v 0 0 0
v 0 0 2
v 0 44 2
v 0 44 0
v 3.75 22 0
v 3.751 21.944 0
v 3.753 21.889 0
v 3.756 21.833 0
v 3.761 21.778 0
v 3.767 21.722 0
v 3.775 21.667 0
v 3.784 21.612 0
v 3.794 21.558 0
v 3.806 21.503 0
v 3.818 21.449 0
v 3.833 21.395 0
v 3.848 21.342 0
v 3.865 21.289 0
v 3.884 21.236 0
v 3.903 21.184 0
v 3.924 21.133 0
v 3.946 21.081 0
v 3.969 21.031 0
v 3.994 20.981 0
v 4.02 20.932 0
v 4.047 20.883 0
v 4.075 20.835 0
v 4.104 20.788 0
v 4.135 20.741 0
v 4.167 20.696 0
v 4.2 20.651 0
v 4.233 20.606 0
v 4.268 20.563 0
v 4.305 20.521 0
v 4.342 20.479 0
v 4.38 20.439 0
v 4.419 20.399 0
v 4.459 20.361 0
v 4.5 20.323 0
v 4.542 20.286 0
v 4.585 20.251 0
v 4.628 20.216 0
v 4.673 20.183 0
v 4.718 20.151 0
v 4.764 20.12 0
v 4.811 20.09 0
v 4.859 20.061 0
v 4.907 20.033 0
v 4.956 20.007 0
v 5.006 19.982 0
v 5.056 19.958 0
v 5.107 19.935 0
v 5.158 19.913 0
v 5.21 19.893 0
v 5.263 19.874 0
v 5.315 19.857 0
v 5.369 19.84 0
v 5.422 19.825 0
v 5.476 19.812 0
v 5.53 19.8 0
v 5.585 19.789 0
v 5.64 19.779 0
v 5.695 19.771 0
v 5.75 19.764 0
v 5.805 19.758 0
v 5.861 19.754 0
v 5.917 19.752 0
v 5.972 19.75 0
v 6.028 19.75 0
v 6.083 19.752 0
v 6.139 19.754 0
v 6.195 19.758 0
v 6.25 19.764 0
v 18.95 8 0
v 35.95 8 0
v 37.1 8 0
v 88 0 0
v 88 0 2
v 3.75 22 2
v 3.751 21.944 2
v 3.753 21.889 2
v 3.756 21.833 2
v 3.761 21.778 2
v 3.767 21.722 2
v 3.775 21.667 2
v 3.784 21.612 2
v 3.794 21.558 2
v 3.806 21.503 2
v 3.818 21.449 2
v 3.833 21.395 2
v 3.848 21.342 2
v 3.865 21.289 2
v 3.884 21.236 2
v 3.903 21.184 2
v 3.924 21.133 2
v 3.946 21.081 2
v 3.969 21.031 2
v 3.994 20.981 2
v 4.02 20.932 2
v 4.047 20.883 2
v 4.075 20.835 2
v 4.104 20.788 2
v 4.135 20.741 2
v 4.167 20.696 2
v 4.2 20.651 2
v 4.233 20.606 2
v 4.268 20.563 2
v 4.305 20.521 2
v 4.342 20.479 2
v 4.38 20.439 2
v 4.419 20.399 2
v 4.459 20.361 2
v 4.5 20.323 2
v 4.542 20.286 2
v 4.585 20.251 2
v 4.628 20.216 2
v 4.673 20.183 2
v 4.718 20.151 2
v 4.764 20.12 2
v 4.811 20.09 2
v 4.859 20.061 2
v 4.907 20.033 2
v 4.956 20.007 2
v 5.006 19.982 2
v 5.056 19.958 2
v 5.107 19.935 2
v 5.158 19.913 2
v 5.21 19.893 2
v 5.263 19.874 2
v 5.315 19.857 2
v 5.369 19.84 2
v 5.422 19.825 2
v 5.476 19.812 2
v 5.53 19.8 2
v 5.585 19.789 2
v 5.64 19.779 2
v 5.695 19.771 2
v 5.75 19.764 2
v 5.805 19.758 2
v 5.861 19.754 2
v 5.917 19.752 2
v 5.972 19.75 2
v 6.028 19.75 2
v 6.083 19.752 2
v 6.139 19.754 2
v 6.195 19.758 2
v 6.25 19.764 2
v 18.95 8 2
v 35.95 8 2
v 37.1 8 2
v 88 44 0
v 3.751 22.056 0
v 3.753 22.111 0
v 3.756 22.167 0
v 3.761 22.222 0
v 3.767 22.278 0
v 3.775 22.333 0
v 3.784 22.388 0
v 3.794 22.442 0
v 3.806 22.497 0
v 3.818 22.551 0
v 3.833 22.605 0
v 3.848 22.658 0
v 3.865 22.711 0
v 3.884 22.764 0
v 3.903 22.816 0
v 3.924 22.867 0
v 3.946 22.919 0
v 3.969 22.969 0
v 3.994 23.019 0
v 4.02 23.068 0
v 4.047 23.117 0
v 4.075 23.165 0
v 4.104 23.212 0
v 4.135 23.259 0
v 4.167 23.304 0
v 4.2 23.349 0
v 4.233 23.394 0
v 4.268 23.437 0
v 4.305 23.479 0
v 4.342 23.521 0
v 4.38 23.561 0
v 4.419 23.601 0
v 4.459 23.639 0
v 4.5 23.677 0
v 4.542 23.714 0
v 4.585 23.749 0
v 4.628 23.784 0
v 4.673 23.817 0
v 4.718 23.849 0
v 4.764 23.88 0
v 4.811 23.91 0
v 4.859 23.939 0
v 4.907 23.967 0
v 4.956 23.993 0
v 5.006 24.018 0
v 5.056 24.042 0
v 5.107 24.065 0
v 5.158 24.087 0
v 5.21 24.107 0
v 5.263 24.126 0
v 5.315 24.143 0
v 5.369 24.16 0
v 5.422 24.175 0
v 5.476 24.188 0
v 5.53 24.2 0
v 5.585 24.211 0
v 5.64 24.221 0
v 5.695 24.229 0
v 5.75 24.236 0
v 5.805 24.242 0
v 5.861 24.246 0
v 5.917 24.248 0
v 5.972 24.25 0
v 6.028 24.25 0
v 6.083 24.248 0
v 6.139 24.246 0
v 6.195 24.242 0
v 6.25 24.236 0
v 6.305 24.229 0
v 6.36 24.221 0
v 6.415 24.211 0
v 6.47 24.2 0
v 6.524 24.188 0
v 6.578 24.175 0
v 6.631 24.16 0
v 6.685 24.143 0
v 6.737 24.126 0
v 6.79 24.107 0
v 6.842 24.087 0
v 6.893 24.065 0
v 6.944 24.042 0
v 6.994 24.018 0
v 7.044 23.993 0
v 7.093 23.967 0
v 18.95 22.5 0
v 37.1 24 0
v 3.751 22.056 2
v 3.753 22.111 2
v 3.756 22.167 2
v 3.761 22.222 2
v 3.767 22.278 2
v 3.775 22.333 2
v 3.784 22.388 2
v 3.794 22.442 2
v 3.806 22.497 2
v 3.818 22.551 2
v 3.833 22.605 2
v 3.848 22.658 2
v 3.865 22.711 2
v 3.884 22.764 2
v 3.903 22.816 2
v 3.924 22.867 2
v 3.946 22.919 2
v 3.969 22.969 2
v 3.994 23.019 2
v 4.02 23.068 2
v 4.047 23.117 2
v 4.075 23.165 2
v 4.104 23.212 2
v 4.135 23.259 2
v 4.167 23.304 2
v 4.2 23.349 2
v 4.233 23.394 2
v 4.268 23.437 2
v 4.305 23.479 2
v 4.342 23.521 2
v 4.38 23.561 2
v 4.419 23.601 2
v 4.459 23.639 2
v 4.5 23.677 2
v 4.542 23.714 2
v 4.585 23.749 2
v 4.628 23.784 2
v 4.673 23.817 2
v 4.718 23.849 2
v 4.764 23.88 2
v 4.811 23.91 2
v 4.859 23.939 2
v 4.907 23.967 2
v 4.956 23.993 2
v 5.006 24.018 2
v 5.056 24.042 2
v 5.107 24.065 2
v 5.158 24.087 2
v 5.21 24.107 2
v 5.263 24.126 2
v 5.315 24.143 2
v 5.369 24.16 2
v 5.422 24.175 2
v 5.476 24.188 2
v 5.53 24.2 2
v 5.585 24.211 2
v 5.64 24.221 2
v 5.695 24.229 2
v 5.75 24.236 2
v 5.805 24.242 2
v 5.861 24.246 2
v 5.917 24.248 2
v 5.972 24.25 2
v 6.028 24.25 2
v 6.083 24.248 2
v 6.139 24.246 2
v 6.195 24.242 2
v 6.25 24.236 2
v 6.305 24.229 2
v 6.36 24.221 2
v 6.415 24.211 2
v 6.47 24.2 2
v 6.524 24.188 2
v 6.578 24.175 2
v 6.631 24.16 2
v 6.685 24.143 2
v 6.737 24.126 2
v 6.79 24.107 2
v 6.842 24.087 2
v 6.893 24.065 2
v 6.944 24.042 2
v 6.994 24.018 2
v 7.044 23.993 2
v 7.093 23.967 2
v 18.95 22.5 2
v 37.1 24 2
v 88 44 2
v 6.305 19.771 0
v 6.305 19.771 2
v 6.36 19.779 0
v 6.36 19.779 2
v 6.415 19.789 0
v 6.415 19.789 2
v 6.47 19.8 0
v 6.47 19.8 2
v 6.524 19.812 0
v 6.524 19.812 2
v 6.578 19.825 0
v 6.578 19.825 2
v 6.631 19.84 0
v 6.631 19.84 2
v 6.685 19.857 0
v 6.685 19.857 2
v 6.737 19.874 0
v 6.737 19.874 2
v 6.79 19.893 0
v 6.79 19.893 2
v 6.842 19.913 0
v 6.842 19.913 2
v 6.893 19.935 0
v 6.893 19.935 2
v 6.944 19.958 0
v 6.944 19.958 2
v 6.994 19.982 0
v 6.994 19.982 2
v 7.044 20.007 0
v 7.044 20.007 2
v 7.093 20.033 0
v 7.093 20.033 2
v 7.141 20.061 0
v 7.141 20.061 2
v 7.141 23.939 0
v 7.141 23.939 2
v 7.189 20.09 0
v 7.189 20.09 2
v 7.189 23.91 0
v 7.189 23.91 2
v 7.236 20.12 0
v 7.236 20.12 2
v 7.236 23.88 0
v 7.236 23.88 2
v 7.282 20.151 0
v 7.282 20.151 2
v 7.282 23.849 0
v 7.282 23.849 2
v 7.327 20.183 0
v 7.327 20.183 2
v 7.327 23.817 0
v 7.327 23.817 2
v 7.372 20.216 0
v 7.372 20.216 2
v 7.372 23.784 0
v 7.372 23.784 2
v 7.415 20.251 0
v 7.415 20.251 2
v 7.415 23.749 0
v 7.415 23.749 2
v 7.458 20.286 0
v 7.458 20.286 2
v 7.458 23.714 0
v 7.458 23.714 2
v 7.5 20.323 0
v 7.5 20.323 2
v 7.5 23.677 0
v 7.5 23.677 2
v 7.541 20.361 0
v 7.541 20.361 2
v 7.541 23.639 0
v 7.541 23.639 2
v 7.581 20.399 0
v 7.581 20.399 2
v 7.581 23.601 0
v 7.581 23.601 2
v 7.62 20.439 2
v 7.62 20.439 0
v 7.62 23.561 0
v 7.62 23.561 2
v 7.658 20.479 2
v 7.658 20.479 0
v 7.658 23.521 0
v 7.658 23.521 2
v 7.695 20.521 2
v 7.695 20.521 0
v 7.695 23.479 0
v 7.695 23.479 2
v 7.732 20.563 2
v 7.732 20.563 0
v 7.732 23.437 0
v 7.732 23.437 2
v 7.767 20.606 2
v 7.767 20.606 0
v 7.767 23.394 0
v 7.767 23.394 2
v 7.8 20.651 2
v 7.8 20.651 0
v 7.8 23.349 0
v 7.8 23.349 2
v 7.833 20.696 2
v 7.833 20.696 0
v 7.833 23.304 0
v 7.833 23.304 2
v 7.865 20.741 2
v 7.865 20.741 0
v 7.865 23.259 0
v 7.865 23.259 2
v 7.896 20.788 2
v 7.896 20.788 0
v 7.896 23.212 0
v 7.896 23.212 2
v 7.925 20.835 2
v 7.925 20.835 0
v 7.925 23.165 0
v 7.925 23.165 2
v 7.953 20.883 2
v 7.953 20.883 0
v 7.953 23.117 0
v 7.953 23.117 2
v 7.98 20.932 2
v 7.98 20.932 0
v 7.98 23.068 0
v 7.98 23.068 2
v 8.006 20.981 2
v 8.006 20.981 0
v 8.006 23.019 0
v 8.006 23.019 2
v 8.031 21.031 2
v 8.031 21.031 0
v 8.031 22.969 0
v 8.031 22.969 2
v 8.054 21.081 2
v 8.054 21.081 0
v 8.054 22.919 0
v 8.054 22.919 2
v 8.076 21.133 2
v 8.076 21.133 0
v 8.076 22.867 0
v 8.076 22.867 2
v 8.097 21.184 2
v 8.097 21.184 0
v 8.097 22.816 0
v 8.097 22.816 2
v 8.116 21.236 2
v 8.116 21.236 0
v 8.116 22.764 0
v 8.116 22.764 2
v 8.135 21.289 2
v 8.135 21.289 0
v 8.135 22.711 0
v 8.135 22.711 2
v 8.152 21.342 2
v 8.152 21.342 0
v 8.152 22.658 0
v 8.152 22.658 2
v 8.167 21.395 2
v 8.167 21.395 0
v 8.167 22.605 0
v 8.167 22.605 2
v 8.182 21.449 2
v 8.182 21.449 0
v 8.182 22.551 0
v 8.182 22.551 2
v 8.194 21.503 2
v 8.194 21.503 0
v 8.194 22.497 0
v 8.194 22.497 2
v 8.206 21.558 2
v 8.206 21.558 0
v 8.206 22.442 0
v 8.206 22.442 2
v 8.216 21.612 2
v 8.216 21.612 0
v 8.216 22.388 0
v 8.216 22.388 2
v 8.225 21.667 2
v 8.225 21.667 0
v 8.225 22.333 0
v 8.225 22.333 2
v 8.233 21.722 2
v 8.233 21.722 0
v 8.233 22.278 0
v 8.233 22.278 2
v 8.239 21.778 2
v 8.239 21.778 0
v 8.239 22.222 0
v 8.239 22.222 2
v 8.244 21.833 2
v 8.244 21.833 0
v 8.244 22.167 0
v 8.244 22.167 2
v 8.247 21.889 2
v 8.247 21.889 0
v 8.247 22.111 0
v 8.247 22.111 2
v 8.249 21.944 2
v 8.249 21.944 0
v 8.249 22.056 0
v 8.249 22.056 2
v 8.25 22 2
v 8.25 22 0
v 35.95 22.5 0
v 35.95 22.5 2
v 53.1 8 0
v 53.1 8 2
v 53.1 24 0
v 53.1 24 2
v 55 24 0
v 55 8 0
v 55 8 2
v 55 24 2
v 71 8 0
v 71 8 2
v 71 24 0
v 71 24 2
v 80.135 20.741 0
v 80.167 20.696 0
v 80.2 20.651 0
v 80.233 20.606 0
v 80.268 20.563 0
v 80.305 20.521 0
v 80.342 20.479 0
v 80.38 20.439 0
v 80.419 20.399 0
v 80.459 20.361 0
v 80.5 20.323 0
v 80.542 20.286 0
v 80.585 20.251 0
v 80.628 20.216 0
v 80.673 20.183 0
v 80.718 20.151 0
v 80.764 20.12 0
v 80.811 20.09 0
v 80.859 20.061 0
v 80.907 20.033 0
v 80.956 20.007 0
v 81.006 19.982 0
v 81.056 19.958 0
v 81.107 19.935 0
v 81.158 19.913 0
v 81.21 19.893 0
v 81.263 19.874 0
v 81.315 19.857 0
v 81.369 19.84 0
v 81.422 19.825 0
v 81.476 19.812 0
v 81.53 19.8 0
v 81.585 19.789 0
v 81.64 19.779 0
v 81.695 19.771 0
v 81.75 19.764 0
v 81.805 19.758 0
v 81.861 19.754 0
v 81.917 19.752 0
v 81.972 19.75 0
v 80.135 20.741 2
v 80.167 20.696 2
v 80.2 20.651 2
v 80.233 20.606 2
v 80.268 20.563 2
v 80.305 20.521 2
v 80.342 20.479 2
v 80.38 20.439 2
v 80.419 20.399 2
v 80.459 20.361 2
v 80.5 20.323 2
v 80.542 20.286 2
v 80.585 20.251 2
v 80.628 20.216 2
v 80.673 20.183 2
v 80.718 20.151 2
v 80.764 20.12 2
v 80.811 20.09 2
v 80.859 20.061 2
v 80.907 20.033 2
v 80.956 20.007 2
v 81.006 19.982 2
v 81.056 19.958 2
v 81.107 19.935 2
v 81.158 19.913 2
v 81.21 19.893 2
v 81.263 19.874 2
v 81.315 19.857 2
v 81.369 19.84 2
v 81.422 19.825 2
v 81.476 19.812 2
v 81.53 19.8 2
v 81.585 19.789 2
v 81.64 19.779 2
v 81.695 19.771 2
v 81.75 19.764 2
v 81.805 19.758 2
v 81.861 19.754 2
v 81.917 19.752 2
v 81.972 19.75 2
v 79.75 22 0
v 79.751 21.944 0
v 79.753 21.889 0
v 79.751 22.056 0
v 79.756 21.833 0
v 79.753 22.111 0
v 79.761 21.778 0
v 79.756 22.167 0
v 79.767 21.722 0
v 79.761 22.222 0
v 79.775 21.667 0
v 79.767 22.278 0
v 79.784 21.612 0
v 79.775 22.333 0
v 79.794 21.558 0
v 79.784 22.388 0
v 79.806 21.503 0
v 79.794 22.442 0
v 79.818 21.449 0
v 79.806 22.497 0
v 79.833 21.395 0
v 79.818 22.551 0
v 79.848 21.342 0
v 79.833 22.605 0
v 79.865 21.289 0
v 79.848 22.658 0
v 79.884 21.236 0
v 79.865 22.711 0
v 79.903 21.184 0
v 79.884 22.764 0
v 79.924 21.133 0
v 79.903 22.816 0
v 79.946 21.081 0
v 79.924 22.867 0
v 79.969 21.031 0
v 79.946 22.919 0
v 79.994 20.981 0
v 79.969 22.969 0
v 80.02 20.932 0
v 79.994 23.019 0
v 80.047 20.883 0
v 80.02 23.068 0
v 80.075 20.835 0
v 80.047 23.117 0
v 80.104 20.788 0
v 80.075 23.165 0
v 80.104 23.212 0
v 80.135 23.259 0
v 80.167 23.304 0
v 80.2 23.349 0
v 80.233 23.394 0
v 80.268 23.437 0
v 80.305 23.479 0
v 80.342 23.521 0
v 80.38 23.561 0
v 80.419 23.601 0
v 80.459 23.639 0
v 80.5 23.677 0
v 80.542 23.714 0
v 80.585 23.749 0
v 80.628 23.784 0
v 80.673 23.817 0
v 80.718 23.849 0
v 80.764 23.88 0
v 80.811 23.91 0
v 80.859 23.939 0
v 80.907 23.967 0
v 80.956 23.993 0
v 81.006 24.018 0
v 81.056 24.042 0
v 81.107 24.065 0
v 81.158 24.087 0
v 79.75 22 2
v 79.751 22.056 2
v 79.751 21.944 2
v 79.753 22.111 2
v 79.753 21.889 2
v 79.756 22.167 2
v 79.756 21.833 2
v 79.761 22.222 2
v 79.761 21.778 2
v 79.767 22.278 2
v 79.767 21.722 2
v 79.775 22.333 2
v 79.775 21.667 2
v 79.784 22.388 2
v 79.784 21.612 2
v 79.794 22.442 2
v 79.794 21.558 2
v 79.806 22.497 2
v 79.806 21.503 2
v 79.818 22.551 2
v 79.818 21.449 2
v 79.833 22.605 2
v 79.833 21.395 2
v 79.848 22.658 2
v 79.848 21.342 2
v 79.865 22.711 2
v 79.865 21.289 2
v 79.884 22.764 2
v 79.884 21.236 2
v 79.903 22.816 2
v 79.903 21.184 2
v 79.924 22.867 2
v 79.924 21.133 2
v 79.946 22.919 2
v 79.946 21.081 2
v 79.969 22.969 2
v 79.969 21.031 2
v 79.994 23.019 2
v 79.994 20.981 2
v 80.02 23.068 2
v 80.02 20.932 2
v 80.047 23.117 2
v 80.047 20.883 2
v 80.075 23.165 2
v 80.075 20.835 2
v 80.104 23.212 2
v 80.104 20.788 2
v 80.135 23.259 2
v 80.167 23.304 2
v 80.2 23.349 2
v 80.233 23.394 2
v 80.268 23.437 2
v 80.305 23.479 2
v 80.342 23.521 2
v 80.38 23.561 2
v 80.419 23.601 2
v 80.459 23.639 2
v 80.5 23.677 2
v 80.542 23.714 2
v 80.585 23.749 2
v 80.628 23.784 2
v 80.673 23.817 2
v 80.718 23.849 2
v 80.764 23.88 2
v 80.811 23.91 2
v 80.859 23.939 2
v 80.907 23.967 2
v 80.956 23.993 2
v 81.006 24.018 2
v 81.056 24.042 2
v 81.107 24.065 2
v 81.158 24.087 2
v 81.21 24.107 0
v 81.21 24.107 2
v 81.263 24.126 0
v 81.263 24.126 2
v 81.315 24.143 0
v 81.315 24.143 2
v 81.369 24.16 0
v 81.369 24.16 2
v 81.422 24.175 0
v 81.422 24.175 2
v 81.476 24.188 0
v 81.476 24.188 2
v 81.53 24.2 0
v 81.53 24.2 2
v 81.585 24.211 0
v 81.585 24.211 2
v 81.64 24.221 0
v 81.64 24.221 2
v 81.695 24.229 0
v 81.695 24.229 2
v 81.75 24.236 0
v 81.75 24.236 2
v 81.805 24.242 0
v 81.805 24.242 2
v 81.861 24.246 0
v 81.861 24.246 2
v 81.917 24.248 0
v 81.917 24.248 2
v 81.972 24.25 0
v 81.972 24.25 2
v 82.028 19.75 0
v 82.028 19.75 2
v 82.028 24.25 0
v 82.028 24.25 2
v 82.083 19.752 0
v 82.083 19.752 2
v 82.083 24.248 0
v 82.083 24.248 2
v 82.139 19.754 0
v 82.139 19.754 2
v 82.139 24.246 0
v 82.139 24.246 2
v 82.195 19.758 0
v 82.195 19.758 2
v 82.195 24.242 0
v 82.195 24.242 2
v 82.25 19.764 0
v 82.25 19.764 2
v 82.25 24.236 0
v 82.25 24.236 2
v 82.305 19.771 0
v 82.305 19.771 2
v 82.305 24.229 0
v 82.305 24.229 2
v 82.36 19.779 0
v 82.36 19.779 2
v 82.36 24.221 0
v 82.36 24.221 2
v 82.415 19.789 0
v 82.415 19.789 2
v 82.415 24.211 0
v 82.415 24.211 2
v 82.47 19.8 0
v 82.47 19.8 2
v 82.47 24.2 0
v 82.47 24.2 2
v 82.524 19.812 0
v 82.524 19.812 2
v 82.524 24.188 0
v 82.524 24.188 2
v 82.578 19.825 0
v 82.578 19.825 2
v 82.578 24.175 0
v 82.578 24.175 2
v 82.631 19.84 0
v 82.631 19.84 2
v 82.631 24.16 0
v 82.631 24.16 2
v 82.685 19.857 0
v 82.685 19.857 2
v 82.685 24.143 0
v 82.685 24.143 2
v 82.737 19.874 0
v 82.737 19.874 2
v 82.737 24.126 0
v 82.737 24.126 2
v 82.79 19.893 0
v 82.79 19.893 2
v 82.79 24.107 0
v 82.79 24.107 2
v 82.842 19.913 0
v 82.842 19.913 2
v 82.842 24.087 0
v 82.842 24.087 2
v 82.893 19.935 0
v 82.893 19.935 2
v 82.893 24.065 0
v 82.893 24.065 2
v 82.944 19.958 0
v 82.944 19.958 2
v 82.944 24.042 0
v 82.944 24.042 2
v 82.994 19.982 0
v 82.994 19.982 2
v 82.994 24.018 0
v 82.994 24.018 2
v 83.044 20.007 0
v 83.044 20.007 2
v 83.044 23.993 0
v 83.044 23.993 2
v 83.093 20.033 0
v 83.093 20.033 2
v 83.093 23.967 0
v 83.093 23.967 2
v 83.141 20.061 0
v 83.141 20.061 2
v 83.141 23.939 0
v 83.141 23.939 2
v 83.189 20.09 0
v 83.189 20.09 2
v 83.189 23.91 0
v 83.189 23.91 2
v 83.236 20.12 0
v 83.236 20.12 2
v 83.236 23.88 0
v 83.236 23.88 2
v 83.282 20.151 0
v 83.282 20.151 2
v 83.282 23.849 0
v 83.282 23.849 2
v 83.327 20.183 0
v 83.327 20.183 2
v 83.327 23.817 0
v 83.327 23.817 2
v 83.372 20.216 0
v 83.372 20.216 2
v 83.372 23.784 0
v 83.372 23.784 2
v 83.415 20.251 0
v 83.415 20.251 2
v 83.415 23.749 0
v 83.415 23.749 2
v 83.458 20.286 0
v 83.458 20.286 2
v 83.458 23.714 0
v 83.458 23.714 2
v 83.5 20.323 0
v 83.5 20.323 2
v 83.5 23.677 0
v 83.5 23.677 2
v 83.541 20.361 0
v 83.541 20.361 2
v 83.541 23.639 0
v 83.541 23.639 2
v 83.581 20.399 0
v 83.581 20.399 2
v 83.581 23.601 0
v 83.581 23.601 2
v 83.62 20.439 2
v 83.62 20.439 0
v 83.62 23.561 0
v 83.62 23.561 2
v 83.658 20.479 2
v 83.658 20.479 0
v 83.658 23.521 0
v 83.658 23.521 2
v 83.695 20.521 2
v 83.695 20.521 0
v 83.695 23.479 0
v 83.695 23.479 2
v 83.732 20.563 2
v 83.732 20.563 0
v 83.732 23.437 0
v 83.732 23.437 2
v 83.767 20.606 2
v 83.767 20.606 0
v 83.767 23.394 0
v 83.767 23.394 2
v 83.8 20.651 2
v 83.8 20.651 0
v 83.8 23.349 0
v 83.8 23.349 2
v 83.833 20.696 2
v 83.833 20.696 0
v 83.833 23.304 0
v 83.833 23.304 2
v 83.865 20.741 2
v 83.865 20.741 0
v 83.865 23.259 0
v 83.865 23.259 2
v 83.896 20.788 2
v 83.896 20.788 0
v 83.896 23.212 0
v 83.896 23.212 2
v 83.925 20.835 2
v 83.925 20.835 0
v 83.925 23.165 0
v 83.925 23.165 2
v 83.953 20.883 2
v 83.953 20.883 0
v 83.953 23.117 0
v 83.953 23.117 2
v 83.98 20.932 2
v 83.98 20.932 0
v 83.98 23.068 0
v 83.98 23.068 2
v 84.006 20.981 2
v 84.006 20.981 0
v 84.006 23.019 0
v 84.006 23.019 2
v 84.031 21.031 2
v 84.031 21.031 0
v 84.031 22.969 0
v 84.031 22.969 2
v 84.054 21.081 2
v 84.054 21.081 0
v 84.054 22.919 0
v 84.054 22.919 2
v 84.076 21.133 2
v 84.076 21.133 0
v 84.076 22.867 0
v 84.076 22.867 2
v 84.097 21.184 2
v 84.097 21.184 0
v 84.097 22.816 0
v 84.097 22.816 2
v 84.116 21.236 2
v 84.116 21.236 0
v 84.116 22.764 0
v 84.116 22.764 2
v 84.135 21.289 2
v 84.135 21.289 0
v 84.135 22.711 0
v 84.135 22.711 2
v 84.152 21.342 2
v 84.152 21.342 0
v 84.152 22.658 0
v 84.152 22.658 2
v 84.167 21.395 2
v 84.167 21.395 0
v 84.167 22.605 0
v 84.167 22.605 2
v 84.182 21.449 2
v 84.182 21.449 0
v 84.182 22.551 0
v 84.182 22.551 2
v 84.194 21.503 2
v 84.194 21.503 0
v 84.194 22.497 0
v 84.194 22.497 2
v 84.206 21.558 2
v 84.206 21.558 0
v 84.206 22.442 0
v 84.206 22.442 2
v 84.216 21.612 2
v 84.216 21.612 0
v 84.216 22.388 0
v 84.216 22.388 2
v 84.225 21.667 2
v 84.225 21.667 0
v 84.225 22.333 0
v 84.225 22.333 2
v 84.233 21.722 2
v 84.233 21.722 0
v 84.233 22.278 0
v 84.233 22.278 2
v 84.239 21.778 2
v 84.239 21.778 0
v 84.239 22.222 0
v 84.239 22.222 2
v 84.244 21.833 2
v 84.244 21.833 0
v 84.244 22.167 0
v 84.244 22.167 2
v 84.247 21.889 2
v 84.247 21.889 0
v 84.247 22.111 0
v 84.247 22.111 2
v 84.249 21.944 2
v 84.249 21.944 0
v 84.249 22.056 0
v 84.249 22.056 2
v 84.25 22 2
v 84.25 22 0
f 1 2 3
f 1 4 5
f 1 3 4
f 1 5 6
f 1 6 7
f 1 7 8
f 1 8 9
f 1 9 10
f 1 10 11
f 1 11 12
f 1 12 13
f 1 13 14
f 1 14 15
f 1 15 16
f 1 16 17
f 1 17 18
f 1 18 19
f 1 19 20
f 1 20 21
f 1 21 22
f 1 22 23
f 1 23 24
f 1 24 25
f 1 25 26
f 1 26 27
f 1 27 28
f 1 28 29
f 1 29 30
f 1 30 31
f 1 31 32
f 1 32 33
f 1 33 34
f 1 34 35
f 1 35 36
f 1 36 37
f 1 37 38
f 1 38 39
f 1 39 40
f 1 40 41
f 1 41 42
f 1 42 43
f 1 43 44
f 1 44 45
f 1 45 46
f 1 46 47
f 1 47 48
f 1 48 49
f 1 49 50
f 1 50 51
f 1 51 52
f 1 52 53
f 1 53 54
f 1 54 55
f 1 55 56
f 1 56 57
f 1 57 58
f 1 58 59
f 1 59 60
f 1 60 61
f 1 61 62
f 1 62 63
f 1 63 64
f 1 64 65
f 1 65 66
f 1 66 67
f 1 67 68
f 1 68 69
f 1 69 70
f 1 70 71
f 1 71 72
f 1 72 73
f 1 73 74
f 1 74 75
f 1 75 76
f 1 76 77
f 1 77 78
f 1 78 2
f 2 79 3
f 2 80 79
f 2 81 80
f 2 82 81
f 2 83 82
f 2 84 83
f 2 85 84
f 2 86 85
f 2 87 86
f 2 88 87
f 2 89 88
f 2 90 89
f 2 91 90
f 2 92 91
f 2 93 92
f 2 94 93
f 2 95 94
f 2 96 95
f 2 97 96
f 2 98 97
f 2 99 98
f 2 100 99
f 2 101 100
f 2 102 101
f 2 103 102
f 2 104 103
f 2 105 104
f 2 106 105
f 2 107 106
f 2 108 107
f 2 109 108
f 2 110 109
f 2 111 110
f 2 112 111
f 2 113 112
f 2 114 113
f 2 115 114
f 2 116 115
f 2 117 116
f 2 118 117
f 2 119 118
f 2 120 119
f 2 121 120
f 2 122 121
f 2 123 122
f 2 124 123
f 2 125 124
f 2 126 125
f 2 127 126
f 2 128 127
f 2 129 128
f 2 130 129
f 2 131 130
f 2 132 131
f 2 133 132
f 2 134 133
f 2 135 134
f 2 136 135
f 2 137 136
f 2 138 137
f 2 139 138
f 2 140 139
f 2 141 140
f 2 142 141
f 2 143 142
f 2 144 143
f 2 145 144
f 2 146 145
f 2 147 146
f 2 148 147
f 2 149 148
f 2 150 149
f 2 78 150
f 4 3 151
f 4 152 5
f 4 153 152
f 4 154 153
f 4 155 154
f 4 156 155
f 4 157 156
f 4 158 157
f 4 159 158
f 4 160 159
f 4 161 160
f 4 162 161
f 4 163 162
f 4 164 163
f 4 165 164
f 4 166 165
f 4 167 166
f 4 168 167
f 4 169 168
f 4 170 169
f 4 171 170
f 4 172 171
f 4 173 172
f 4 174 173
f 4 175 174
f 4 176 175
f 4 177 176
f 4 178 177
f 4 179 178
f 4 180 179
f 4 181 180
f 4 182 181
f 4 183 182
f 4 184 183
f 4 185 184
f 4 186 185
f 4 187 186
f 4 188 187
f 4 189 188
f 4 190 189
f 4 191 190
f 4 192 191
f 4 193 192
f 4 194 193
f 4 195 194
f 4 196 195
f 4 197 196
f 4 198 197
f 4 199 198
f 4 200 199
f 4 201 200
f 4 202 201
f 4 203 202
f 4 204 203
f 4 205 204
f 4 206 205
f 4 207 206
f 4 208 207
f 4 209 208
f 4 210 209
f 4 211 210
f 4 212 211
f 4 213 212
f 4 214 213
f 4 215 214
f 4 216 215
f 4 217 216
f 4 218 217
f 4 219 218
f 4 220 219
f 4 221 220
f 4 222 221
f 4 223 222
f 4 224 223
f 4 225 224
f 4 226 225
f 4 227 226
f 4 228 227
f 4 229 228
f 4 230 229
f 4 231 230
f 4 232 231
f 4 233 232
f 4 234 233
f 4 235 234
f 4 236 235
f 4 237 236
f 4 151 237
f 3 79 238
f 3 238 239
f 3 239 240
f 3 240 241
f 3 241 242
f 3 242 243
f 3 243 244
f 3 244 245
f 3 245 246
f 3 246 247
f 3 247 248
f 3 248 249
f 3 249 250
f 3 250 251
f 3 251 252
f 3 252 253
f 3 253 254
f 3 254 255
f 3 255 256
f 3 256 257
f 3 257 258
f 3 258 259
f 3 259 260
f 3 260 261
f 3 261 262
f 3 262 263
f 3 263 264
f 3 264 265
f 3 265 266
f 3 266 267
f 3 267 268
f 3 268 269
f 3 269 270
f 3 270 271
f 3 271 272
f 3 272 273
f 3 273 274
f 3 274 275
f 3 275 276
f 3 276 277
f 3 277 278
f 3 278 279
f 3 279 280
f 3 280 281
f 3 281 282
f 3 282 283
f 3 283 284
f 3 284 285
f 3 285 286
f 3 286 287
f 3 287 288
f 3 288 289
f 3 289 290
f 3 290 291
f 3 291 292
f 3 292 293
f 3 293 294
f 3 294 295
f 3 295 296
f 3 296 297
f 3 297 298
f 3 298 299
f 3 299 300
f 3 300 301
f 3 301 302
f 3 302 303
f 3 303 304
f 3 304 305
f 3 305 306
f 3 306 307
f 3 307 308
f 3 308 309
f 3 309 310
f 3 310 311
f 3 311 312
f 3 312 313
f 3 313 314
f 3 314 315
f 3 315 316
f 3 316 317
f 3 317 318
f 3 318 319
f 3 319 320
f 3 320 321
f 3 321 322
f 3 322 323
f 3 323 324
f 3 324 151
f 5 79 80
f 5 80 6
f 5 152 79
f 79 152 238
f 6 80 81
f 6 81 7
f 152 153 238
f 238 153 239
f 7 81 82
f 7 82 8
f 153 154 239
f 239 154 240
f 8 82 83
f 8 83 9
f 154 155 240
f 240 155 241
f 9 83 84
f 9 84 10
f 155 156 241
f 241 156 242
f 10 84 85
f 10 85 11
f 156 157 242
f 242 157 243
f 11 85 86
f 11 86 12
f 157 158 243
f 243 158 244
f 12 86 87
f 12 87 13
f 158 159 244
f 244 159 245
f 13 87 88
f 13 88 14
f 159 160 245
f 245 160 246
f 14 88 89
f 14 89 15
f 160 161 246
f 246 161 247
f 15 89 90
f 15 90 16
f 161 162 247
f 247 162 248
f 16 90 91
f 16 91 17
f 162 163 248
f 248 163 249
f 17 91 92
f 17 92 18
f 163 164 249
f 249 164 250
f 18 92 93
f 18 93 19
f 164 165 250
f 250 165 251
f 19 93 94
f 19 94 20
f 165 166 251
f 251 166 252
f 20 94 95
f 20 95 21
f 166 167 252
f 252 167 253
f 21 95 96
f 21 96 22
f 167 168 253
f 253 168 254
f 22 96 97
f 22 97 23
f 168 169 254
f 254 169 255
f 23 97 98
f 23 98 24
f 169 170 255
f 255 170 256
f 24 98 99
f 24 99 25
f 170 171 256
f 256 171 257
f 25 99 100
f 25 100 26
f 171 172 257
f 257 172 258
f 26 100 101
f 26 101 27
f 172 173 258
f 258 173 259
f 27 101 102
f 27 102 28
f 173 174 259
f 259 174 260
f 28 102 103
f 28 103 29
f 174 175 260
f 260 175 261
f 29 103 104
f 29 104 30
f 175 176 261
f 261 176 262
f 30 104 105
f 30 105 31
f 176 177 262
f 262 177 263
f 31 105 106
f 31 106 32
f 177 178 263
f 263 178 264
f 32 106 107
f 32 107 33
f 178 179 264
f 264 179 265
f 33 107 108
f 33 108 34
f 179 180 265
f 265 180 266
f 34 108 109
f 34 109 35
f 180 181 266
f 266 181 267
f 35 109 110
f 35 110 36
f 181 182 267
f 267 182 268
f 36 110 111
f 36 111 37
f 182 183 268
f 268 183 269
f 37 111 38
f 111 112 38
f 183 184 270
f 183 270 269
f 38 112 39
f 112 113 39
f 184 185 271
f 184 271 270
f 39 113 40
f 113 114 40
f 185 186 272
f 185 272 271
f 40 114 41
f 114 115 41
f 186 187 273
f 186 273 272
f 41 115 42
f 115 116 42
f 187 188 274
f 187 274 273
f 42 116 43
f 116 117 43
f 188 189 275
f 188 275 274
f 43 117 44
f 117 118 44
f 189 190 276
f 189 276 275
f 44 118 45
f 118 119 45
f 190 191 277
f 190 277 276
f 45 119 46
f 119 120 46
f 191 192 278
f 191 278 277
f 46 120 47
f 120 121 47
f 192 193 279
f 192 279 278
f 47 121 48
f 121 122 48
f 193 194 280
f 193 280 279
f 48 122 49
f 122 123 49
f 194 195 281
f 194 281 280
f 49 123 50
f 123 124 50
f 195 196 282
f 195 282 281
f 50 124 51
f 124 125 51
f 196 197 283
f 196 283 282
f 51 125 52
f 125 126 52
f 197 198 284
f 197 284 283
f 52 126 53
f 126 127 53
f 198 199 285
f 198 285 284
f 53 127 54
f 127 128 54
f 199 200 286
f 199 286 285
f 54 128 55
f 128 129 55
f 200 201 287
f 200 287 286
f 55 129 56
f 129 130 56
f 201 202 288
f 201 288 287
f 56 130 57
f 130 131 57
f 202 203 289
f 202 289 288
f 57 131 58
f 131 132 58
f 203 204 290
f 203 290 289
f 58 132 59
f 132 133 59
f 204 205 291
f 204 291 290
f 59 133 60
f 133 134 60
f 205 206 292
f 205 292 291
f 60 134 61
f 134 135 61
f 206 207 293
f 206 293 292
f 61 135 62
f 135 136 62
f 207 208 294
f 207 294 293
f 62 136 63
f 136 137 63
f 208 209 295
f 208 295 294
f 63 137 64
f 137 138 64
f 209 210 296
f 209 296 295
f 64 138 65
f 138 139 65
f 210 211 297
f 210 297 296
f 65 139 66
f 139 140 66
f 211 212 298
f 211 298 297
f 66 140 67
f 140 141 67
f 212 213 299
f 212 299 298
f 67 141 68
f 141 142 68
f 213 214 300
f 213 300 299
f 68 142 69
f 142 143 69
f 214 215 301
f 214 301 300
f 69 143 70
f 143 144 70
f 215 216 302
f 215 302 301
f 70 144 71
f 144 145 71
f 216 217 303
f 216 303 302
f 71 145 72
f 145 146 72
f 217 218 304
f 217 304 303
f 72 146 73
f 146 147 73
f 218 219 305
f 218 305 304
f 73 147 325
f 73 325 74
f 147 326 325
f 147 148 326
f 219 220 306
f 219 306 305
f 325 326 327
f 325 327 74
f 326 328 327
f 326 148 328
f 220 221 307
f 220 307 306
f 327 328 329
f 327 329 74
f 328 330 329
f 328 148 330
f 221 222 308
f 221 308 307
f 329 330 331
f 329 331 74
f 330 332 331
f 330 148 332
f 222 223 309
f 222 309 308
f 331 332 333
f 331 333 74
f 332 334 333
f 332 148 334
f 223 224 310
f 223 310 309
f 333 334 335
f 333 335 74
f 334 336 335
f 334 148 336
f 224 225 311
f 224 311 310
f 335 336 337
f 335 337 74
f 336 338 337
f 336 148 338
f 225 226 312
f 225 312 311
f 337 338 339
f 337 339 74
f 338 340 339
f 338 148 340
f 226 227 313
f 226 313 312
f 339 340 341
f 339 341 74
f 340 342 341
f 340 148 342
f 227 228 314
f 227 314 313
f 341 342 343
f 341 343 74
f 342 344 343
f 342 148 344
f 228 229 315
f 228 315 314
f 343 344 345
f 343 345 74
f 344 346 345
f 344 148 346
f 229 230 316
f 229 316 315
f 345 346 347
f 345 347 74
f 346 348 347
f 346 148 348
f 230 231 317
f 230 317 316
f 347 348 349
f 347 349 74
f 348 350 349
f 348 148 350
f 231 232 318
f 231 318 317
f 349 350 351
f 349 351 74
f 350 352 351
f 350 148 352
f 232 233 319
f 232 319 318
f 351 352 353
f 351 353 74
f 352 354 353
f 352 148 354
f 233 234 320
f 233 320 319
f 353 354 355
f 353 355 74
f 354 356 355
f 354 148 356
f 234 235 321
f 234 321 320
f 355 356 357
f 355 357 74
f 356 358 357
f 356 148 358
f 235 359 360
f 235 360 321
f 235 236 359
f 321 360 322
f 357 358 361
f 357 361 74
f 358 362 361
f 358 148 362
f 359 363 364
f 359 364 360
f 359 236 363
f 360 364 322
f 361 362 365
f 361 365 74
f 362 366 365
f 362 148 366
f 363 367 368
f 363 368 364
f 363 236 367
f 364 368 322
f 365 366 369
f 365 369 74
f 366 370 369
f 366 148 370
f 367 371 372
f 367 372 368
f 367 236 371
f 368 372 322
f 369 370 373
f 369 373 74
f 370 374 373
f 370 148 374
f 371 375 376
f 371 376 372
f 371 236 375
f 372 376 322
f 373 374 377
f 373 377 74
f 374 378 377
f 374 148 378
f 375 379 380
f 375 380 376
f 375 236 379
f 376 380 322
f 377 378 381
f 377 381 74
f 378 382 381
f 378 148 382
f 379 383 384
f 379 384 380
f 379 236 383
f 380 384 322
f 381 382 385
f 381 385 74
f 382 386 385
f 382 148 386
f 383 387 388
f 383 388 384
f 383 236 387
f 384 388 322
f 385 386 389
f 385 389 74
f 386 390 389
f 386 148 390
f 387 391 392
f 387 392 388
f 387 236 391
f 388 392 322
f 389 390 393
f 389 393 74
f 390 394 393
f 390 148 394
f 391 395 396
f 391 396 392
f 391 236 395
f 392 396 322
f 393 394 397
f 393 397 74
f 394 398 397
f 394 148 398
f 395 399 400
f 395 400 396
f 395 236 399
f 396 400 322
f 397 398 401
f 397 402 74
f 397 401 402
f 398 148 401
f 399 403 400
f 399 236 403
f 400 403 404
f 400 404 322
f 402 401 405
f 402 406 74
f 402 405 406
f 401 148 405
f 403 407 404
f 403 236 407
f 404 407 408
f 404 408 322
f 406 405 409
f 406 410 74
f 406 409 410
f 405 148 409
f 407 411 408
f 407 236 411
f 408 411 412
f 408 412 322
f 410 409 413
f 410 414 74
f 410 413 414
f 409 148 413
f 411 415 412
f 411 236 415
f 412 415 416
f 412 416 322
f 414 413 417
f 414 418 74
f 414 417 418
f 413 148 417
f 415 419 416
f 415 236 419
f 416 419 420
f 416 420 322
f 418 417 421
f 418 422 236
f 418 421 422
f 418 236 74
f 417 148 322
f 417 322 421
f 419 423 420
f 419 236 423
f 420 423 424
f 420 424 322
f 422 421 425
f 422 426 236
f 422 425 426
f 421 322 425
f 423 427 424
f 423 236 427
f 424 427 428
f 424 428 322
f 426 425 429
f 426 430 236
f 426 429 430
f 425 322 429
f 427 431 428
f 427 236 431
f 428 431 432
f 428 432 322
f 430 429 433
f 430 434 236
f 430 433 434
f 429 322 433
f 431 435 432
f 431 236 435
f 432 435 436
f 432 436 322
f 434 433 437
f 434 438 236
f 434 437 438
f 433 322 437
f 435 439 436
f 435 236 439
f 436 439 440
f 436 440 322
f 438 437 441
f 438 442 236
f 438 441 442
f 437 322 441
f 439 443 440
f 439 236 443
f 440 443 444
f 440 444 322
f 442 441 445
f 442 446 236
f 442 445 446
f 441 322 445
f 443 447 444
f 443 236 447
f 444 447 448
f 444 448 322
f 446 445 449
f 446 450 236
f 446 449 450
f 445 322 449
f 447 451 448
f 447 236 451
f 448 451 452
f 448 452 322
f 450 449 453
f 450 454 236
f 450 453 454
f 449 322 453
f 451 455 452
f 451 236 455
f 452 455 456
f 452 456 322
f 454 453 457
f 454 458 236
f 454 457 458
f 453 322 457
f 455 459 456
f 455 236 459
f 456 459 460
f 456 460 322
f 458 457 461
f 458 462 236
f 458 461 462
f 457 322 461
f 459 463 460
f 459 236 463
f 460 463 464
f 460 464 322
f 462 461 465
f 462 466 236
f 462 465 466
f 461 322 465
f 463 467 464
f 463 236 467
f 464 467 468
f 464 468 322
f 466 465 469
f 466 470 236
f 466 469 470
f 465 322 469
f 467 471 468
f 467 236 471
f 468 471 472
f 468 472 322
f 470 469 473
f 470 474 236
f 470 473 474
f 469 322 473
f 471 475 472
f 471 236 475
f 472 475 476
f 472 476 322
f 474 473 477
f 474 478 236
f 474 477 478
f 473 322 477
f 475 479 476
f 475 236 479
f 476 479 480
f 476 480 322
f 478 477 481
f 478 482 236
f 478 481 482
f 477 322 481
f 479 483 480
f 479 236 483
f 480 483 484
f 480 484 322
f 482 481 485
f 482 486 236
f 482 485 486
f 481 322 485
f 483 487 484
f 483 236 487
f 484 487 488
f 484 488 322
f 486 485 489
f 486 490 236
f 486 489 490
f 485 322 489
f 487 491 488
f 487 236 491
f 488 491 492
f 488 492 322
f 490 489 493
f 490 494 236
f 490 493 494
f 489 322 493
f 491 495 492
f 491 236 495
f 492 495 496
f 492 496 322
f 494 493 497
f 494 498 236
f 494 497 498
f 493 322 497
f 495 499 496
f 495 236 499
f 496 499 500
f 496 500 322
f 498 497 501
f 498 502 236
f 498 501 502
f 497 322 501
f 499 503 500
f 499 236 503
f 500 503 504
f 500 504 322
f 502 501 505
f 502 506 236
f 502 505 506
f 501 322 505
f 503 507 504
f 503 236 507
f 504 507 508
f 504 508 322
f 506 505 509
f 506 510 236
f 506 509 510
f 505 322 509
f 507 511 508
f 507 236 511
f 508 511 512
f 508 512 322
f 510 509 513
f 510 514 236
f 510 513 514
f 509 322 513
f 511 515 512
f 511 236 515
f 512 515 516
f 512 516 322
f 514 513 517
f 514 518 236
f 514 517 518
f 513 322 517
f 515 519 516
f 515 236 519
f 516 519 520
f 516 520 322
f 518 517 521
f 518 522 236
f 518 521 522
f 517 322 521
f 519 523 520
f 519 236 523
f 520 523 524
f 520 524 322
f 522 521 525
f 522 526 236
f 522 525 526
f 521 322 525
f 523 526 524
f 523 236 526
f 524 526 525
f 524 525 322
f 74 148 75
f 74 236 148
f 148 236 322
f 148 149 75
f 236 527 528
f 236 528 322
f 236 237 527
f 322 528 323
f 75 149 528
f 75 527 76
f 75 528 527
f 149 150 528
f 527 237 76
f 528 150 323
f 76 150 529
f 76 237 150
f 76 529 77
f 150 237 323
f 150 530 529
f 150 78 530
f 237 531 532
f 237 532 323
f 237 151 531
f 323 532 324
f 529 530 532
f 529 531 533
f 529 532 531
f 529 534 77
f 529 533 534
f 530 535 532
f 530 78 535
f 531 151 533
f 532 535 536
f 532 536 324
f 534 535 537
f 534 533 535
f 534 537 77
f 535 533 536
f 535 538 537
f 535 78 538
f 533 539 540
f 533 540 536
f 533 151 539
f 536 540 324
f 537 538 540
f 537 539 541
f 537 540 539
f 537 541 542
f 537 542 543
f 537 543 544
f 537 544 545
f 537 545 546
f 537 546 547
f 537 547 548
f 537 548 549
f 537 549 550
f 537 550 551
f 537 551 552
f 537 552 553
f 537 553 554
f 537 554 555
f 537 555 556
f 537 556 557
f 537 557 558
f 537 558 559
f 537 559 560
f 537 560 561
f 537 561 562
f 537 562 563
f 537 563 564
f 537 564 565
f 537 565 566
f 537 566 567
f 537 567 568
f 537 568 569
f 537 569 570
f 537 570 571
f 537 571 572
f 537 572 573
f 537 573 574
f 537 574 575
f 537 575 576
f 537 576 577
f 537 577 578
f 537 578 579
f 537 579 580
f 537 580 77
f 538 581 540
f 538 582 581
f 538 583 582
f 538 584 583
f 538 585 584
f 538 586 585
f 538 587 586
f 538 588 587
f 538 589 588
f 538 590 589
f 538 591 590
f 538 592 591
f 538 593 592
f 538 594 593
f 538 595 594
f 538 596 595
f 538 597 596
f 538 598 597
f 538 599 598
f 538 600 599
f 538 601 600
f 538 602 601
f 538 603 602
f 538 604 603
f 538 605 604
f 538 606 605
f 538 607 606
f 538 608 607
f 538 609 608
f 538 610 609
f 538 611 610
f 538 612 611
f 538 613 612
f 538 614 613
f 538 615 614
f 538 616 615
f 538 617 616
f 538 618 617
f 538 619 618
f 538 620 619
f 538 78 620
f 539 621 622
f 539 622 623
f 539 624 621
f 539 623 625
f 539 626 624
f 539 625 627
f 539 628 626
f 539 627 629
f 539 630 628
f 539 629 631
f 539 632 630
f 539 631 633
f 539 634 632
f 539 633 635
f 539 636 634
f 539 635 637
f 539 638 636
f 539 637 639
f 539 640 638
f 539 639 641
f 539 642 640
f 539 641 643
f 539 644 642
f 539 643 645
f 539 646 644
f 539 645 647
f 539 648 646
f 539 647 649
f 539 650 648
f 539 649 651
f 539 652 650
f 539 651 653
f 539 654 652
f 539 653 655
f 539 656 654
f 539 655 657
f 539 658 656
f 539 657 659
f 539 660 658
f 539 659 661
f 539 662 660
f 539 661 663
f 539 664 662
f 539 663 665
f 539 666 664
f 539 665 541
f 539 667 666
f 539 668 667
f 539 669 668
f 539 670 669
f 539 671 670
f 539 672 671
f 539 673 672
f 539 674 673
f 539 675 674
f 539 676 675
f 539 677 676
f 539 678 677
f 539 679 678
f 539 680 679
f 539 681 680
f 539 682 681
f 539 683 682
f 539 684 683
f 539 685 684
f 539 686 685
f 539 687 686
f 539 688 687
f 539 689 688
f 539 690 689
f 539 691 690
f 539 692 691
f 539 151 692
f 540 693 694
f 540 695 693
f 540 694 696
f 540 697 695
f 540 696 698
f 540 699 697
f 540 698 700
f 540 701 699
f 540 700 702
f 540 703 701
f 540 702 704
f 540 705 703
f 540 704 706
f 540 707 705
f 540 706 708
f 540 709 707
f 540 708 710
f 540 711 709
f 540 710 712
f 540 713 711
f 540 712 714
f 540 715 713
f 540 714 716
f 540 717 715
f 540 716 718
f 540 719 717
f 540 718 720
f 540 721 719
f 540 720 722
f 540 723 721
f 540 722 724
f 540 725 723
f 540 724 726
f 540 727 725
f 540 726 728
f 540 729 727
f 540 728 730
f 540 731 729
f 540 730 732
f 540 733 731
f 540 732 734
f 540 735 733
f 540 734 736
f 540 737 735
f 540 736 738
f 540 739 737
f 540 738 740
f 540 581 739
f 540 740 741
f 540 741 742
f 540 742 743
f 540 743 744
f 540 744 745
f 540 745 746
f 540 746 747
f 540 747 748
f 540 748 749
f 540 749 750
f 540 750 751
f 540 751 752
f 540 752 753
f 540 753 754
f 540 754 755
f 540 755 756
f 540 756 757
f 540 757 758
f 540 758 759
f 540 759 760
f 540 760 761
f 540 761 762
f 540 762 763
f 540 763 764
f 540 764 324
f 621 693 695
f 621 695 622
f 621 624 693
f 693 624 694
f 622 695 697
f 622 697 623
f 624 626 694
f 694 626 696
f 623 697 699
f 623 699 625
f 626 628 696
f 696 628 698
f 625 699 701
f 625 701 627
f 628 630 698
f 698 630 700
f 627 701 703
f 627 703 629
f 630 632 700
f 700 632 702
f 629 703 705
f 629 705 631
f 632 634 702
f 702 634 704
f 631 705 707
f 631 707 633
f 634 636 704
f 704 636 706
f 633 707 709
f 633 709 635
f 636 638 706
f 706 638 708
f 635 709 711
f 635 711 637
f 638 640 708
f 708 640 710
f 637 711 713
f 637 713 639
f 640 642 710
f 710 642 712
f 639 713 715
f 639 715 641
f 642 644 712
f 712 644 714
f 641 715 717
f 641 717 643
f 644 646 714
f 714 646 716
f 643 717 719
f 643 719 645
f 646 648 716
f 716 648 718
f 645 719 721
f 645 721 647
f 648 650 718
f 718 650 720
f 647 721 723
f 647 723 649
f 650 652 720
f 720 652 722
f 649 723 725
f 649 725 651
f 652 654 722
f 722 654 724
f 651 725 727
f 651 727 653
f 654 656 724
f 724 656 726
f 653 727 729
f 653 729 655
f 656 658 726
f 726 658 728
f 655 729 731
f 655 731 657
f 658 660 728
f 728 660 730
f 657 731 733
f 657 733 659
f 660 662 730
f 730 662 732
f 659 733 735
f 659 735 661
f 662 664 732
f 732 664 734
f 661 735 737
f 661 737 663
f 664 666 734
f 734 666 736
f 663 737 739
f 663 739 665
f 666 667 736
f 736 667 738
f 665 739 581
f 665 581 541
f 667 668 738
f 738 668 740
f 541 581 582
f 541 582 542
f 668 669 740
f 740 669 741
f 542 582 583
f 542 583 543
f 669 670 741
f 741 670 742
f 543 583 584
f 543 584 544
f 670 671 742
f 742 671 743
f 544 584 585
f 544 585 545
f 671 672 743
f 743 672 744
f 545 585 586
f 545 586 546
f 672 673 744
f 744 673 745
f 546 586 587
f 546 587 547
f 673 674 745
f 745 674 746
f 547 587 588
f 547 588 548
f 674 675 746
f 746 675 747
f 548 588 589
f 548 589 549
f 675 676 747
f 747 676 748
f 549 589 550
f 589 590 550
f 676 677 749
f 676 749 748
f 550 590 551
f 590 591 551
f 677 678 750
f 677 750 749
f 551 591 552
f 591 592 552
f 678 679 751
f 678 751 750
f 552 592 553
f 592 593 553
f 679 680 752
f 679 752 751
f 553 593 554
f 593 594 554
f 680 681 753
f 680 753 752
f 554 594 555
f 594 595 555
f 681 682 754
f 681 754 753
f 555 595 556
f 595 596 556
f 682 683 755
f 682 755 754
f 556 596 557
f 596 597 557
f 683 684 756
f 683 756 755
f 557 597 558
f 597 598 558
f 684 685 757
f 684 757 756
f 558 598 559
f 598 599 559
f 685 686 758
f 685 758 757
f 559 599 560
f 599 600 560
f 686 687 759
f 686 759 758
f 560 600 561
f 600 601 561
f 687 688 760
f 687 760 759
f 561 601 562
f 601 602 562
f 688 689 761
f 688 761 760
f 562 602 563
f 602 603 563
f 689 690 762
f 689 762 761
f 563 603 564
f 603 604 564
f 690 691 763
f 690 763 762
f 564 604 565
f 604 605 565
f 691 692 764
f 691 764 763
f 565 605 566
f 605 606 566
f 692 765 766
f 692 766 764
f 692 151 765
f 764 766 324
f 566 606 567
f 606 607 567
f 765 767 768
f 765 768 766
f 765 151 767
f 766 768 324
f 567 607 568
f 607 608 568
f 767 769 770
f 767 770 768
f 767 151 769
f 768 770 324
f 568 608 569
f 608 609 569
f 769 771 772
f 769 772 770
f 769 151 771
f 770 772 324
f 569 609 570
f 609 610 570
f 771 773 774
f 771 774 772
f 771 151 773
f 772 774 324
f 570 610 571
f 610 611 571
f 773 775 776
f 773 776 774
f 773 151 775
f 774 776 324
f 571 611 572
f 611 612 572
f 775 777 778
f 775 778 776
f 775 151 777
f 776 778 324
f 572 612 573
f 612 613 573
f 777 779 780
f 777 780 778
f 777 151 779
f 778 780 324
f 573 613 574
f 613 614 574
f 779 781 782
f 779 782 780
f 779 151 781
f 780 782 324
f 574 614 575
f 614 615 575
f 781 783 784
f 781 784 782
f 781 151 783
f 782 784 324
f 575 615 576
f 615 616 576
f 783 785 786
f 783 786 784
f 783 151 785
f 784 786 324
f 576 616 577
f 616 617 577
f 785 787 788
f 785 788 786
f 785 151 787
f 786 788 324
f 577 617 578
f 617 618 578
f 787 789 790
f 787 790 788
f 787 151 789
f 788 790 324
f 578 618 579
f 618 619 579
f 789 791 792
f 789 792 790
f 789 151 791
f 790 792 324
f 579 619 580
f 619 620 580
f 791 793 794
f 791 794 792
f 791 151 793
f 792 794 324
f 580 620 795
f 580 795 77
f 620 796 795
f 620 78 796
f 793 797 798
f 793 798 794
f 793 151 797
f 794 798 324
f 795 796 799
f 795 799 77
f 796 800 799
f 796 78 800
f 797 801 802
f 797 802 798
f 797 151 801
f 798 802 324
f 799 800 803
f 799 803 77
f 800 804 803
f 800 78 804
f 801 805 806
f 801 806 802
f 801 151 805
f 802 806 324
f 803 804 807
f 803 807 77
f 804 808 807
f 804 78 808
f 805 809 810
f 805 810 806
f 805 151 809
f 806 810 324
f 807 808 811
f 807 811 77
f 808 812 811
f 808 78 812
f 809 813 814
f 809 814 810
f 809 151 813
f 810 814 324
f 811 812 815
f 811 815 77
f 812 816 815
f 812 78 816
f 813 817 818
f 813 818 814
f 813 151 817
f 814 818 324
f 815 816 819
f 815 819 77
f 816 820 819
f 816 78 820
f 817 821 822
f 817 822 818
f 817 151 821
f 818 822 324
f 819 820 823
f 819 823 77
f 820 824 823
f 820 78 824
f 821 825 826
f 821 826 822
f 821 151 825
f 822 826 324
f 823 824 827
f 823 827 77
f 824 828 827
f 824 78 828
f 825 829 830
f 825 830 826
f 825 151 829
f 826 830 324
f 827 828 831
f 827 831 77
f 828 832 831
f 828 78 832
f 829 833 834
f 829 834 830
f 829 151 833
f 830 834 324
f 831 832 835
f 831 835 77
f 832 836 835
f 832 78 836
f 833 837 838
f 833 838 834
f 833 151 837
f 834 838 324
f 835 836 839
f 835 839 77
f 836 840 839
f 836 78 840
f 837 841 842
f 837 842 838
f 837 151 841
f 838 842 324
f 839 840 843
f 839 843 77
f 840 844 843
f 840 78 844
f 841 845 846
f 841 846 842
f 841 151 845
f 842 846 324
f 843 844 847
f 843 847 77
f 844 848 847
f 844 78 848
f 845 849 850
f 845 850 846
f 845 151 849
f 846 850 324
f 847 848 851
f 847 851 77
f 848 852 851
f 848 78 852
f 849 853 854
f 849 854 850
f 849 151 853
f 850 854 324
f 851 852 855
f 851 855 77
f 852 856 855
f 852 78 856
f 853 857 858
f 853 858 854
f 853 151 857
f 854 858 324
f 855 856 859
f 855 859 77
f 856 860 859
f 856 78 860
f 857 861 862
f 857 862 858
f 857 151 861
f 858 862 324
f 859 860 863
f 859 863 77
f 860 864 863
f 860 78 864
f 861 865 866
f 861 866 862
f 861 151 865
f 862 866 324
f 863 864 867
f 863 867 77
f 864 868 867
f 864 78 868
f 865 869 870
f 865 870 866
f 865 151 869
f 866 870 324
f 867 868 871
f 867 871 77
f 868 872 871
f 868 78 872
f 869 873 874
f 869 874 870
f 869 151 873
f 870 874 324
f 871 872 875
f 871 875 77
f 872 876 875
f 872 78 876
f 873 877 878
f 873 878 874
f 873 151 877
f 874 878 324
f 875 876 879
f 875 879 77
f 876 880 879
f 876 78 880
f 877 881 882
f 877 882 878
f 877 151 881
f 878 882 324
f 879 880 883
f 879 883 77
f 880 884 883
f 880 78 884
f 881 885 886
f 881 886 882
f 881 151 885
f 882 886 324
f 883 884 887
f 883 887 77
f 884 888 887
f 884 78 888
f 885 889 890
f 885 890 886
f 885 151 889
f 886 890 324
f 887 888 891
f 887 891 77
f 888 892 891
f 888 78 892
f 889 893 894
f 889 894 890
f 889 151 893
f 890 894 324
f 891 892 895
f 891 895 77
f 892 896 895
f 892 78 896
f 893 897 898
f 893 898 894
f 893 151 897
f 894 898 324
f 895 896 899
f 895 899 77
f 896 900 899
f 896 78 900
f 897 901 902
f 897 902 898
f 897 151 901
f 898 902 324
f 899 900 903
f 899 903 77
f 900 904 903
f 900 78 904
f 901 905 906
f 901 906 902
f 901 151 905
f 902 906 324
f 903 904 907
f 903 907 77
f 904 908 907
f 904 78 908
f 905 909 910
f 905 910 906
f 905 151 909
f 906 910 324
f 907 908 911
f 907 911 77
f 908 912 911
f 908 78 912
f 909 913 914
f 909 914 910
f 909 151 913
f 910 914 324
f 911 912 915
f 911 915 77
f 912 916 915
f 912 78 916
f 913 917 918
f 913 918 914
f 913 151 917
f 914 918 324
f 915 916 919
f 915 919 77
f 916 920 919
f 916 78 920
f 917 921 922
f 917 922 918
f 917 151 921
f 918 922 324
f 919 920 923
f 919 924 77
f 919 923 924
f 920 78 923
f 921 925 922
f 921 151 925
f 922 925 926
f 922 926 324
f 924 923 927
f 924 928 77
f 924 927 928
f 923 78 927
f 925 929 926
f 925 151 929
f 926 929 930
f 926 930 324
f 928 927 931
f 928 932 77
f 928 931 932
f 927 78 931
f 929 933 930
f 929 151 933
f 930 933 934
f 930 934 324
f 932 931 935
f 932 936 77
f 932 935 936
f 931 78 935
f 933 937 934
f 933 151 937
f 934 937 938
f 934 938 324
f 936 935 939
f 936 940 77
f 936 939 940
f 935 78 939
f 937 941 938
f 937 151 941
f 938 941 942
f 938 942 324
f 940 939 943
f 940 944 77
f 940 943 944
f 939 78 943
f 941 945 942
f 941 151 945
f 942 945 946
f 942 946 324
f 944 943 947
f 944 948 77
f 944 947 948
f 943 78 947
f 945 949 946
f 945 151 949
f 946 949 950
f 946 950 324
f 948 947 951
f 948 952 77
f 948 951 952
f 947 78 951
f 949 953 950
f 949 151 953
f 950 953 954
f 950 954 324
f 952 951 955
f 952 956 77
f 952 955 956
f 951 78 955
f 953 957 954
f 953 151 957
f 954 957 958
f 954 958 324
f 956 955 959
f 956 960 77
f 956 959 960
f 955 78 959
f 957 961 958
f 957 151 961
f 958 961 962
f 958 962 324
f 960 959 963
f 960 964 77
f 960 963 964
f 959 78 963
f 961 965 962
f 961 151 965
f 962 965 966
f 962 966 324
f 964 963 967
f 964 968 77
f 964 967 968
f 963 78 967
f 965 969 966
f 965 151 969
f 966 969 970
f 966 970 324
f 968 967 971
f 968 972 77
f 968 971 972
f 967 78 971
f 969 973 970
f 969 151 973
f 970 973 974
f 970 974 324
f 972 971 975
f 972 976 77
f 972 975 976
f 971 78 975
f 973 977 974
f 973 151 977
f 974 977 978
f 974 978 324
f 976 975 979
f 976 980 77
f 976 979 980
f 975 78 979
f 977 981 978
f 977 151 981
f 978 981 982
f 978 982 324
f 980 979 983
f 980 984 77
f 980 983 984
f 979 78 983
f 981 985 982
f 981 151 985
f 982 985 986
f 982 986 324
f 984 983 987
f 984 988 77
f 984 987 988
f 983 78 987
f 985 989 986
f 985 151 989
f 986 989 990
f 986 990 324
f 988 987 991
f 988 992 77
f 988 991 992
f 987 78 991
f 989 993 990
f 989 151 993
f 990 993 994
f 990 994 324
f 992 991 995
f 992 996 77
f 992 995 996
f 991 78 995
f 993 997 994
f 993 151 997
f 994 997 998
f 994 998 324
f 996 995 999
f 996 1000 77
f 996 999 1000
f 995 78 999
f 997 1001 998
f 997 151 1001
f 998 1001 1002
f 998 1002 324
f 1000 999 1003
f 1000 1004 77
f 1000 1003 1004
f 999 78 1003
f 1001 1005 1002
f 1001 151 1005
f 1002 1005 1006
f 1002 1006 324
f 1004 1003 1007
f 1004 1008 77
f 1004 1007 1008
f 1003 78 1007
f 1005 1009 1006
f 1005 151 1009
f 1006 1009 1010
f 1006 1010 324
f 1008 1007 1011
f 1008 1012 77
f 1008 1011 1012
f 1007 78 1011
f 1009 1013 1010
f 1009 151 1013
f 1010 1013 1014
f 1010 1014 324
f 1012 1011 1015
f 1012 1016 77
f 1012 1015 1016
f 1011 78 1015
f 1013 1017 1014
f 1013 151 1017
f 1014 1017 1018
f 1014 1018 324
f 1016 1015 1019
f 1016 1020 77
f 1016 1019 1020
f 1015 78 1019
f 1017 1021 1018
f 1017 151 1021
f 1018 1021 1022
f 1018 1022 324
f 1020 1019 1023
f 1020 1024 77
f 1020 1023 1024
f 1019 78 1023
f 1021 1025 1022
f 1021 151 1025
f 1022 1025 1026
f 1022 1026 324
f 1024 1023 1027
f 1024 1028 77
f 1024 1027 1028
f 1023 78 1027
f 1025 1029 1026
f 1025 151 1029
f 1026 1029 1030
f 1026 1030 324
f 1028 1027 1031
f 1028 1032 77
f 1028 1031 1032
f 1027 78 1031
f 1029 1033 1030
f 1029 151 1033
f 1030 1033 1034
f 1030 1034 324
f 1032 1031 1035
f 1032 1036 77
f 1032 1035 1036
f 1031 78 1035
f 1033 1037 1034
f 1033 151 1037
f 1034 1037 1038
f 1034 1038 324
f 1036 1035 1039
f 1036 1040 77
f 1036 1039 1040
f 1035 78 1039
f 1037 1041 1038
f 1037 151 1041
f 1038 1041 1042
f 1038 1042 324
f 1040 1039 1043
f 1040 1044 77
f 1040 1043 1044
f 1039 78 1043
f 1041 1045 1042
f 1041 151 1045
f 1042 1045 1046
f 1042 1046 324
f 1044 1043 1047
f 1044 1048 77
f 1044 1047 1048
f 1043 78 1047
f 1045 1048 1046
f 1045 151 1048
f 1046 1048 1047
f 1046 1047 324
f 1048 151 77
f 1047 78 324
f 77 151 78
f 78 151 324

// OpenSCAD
rsp5_x = 56;
rsp5_usb_2_0_pos = 47.5;
rsp5_usb_3_0_pos = 29.6;
rsp5_eth_pos = 10;

boolean_height = 10;
boolean_offset = -1;

base_x = 88;
base_y = 44;
base_z = 2;

base_screw_pos_y = base_y / 2;
base_screw_1_pos_x = 6;
base_screw_2_pos_x = base_x - base_screw_1_pos_x;
base_screw_hole_radius = 4.5 / 2;

base_board_margin = (base_x - rsp5_x) / 2;

usb_x = 16;
usb_y = 16;


eth_x = 17;
eth_y = 14.5;

hole_y_offset = 8;

difference() {
    difference() {
        difference() {
            difference() {
                // base
                cube([base_x,base_y,base_z], false);
                // USB 2.0
                color("black")
                translate([rsp5_usb_2_0_pos - (usb_y / 2) + base_board_margin, hole_y_offset, -1])
                cube([usb_x,usb_y, boolean_height], false);
            };
            // USB 3.0
            color("lightblue")
            translate([rsp5_usb_3_0_pos - (usb_y / 2) + base_board_margin, hole_y_offset, -1])
            cube([usb_x,usb_y, boolean_height], false);
        }
        // Ethernet
        color("red")
        translate([rsp5_eth_pos - (eth_y / 2) + base_board_margin, hole_y_offset, -1])
        cube([eth_x,eth_y, boolean_height], false);
    }

    {
        translate([base_screw_1_pos_x, base_screw_pos_y, -1])
        cylinder(boolean_height, base_screw_hole_radius, base_screw_hole_radius, $fn=254);

        translate([base_screw_2_pos_x, base_screw_pos_y, -1])
        cylinder(boolean_height, base_screw_hole_radius, base_screw_hole_radius, $fn=254);
    }
}
